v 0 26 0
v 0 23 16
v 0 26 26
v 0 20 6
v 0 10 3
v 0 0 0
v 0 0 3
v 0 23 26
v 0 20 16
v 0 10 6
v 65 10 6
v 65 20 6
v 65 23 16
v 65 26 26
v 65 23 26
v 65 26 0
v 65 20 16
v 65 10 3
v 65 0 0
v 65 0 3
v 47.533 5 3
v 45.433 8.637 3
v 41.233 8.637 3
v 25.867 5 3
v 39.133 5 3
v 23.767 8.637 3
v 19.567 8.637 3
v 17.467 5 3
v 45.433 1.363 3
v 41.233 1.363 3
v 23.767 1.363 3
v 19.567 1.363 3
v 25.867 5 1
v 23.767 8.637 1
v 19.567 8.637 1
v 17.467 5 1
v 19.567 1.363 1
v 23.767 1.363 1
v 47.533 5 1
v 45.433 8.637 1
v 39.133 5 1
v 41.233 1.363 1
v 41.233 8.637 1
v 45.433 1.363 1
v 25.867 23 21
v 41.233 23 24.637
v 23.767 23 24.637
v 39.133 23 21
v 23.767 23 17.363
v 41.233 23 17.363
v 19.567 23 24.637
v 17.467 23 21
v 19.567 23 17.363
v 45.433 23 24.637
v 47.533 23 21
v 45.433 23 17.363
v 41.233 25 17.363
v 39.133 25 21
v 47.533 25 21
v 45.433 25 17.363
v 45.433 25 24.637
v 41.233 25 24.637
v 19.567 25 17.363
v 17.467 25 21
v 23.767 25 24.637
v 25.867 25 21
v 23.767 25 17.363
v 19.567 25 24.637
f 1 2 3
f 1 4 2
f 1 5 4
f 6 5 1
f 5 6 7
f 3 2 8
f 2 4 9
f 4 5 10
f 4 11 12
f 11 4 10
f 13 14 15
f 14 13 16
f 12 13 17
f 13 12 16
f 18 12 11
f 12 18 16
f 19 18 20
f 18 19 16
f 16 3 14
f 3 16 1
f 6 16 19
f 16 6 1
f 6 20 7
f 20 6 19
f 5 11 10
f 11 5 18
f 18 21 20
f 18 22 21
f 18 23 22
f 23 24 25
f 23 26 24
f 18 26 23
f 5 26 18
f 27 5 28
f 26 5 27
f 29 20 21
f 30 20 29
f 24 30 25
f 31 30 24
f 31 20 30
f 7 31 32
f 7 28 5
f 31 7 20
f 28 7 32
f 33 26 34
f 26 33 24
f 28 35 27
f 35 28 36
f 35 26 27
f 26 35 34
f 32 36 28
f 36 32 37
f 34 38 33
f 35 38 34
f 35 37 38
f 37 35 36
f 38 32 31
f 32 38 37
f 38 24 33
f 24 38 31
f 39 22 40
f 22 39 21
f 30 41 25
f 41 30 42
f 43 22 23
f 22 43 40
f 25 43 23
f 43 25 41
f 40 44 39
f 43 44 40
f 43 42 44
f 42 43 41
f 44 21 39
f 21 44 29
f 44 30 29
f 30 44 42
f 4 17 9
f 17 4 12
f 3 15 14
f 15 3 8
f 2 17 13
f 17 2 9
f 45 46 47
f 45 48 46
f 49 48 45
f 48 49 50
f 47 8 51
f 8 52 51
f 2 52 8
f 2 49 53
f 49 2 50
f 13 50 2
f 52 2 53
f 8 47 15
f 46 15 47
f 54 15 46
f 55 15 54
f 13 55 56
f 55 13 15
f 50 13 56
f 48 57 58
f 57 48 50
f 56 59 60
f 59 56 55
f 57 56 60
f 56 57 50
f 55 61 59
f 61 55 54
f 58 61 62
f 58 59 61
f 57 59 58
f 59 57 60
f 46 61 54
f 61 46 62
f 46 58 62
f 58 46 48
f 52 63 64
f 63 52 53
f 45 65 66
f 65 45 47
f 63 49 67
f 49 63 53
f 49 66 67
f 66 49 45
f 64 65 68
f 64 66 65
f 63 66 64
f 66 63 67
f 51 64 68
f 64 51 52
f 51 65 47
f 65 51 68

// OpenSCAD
lipHeight = 3;
lipLength = 10;
height = 6;
length = lipLength + height + 10;
width = 65;
protrusionHeight = 2;
protrusionRadius = 4.2;
protrusionWidthOffset = width / 3;
protrusionLengthOffset = lipLength / 2;

Side();
translate([width, length, length])
    rotate([90, 180, 0])
        Side();

module Side() {
    $fn=6;
    union() {
        difference() {
            cube([width, length, height]);
            translate([0, 0, height - lipHeight])
                cube([width, lipLength, lipHeight]);
            translate([protrusionWidthOffset, protrusionLengthOffset, height - (lipHeight + protrusionHeight)])
                cylinder(r=protrusionRadius, h=protrusionHeight);
            translate([(width - protrusionWidthOffset), protrusionLengthOffset, height - (lipHeight + protrusionHeight)])
                cylinder(r=protrusionRadius, h=protrusionHeight);
        };        
    };
}
